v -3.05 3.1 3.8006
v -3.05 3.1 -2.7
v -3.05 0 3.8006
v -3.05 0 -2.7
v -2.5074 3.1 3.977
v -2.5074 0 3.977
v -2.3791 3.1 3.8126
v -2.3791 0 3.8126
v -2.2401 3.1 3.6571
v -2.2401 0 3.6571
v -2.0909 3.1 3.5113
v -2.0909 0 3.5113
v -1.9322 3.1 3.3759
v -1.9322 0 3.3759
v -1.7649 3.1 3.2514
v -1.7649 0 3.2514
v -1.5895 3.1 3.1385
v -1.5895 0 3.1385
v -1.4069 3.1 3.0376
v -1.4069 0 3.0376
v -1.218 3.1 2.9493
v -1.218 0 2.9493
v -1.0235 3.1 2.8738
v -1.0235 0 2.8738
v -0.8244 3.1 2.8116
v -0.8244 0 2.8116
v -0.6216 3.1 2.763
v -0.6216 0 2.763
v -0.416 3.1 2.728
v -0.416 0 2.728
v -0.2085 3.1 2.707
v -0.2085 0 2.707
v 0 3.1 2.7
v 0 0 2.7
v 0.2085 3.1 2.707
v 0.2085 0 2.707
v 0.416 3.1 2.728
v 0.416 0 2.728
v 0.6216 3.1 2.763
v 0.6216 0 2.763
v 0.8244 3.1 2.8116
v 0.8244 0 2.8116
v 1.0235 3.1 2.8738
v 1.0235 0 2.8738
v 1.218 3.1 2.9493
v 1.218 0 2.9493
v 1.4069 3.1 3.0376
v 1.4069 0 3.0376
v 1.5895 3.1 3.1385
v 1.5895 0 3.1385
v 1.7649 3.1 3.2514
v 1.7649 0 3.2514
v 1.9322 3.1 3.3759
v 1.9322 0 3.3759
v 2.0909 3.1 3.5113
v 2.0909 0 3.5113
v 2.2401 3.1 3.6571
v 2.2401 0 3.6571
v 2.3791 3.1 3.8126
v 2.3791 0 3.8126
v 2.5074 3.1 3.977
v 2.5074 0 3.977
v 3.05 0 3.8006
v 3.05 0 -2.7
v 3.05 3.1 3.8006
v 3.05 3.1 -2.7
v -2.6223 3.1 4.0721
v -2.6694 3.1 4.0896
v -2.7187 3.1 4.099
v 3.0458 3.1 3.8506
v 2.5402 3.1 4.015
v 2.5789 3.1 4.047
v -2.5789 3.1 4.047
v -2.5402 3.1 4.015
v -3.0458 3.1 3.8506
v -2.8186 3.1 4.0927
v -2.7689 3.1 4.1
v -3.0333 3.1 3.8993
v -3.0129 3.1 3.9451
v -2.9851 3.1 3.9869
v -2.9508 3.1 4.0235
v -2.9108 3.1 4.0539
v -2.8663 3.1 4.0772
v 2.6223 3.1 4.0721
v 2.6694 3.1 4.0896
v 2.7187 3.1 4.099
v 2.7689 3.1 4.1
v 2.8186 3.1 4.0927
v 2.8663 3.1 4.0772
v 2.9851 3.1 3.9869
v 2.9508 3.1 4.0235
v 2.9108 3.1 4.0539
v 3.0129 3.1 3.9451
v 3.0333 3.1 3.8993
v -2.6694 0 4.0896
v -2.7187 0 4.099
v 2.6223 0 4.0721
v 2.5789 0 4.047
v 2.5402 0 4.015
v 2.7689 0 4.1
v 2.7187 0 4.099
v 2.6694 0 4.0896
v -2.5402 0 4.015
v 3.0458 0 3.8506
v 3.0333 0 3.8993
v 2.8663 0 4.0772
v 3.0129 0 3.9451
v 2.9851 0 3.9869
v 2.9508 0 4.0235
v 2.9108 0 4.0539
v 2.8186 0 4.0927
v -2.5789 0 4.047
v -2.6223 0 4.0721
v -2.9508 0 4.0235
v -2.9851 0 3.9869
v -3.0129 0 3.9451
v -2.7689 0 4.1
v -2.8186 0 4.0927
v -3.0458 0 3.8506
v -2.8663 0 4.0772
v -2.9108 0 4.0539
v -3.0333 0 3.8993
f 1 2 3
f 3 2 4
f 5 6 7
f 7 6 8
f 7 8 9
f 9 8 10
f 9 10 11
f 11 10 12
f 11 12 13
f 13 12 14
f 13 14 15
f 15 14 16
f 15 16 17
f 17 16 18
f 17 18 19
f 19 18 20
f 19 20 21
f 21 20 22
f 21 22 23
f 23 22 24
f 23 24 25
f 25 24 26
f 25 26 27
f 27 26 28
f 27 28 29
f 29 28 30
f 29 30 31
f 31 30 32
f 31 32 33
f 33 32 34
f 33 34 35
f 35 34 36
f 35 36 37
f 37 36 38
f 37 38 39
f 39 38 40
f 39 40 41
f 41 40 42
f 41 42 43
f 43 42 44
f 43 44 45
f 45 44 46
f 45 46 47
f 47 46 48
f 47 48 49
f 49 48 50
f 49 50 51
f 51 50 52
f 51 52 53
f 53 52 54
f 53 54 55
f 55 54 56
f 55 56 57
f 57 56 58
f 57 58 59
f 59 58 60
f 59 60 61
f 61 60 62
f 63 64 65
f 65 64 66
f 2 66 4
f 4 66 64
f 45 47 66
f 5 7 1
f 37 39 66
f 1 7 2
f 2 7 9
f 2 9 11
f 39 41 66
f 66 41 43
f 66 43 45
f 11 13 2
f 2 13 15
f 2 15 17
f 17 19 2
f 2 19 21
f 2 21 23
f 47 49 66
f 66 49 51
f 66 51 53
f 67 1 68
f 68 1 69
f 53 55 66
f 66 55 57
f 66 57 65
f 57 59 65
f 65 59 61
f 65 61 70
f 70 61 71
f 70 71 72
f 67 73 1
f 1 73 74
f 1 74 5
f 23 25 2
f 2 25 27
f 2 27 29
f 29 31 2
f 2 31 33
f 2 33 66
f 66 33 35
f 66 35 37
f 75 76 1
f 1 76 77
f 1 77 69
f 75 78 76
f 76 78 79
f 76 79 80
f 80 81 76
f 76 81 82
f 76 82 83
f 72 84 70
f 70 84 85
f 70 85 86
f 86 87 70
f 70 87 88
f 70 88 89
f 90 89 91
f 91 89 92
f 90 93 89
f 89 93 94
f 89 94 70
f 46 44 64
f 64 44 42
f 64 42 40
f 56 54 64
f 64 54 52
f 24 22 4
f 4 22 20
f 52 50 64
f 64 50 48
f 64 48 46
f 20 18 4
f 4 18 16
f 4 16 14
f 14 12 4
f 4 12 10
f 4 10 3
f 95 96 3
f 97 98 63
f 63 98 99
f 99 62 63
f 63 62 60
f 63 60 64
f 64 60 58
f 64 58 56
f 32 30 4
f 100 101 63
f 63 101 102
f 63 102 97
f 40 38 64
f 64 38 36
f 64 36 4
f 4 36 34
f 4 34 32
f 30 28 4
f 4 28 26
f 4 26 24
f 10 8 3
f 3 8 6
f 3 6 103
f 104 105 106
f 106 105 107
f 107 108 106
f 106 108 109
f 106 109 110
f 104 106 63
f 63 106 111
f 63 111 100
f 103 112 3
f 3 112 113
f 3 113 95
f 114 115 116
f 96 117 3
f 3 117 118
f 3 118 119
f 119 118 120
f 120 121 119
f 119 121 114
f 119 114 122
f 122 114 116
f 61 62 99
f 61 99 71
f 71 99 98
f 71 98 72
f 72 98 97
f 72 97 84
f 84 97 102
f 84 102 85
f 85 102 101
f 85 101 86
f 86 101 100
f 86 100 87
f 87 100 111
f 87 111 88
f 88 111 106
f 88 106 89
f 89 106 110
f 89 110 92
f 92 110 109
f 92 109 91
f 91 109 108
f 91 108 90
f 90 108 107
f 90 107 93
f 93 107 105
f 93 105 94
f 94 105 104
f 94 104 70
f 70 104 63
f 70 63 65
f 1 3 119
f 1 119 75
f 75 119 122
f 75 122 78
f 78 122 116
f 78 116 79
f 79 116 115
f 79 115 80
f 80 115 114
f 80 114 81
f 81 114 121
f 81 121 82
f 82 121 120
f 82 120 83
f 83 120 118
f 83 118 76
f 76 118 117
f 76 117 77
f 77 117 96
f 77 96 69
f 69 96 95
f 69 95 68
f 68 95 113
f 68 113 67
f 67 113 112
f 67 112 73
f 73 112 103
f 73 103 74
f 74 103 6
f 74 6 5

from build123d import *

# Parameters (mm, degrees)
SKETCH1_W           = 6.1
SKETCH1_H           = 5.4
BOSS_EXTRUDE2_DEPTH = 3.1
FILLET1_R           = 0.3


with BuildPart() as part:
    # Sketch1 → Boss-Extrude2 (new body)
    with BuildSketch(Plane(origin=(0, 0, 0), x_dir=(1, 0, 0), z_dir=(0, 1, 0))):
        Rectangle(SKETCH1_W, SKETCH1_H)
        with BuildLine():
            Line((0, -2.7), (-3.05, -2.7))
            Line((-3.05, -2.7), (-3.05, -5.245473175))
            ThreePointArc((-3.05, -5.245473175), (-1.986324098, -3.419975509), (0, -2.7))
        make_face()
        with BuildLine():
            Line((3.05, -2.7), (0, -2.7))
            ThreePointArc((0, -2.7), (1.986324098, -3.419975509), (3.05, -5.245473175))
            Line((3.05, -5.245473175), (3.05, -2.7))
        make_face()
    extrude(amount=BOSS_EXTRUDE2_DEPTH)

    # Fillet1
    fillet1_edges = [part.edges().sort_by_distance(p)[0] for p in [
        (3.05, 1.55, 5.245473175),
        (-3.05, 1.55, 5.245473175),
    ]]
    fillet(fillet1_edges, radius=FILLET1_R)


solid = part.part
